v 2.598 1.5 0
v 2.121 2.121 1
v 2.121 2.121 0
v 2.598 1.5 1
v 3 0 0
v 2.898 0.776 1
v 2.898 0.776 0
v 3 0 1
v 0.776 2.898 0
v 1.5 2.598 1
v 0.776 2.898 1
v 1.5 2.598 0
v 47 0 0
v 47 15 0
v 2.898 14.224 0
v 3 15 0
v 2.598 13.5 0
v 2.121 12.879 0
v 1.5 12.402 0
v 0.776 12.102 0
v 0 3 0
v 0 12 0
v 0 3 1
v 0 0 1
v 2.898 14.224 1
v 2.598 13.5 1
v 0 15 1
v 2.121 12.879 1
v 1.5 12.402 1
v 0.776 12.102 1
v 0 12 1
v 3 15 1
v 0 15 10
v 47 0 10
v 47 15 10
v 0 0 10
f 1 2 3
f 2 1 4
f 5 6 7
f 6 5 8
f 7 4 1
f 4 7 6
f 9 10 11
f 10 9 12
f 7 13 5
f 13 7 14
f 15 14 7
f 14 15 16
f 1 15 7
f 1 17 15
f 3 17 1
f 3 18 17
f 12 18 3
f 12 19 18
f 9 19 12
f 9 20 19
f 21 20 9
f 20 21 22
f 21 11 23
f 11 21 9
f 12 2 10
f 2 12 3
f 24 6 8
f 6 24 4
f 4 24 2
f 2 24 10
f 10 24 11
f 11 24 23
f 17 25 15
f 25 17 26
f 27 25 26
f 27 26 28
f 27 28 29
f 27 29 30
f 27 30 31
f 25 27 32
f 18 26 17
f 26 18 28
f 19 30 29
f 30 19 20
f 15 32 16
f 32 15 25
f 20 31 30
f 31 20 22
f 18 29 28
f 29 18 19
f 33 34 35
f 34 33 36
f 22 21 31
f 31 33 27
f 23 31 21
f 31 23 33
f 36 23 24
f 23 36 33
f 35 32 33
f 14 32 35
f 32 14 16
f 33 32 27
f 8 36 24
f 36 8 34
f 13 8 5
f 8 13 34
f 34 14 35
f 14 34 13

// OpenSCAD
// Hook Parameters
hook_length = 50;
hook_width = 15;
hook_height = 10;
hook_radius = 3;
wall_thickness = 1;

difference() {
  // Main Body
  cube([hook_length, hook_width, hook_height]);

  // Rounding
  for (i = [0:3]) {
    for (j = [0:3]) {
      translate([i * hook_length, j * hook_width, 0]) {
        cylinder(r = hook_radius, h = 1, $fn = 24);
      }
    }
  }

  //Fillets for grip
  translate([hook_length - hook_radius, 0, 0])
  cube([hook_radius * 2, hook_width, hook_height]);
}
